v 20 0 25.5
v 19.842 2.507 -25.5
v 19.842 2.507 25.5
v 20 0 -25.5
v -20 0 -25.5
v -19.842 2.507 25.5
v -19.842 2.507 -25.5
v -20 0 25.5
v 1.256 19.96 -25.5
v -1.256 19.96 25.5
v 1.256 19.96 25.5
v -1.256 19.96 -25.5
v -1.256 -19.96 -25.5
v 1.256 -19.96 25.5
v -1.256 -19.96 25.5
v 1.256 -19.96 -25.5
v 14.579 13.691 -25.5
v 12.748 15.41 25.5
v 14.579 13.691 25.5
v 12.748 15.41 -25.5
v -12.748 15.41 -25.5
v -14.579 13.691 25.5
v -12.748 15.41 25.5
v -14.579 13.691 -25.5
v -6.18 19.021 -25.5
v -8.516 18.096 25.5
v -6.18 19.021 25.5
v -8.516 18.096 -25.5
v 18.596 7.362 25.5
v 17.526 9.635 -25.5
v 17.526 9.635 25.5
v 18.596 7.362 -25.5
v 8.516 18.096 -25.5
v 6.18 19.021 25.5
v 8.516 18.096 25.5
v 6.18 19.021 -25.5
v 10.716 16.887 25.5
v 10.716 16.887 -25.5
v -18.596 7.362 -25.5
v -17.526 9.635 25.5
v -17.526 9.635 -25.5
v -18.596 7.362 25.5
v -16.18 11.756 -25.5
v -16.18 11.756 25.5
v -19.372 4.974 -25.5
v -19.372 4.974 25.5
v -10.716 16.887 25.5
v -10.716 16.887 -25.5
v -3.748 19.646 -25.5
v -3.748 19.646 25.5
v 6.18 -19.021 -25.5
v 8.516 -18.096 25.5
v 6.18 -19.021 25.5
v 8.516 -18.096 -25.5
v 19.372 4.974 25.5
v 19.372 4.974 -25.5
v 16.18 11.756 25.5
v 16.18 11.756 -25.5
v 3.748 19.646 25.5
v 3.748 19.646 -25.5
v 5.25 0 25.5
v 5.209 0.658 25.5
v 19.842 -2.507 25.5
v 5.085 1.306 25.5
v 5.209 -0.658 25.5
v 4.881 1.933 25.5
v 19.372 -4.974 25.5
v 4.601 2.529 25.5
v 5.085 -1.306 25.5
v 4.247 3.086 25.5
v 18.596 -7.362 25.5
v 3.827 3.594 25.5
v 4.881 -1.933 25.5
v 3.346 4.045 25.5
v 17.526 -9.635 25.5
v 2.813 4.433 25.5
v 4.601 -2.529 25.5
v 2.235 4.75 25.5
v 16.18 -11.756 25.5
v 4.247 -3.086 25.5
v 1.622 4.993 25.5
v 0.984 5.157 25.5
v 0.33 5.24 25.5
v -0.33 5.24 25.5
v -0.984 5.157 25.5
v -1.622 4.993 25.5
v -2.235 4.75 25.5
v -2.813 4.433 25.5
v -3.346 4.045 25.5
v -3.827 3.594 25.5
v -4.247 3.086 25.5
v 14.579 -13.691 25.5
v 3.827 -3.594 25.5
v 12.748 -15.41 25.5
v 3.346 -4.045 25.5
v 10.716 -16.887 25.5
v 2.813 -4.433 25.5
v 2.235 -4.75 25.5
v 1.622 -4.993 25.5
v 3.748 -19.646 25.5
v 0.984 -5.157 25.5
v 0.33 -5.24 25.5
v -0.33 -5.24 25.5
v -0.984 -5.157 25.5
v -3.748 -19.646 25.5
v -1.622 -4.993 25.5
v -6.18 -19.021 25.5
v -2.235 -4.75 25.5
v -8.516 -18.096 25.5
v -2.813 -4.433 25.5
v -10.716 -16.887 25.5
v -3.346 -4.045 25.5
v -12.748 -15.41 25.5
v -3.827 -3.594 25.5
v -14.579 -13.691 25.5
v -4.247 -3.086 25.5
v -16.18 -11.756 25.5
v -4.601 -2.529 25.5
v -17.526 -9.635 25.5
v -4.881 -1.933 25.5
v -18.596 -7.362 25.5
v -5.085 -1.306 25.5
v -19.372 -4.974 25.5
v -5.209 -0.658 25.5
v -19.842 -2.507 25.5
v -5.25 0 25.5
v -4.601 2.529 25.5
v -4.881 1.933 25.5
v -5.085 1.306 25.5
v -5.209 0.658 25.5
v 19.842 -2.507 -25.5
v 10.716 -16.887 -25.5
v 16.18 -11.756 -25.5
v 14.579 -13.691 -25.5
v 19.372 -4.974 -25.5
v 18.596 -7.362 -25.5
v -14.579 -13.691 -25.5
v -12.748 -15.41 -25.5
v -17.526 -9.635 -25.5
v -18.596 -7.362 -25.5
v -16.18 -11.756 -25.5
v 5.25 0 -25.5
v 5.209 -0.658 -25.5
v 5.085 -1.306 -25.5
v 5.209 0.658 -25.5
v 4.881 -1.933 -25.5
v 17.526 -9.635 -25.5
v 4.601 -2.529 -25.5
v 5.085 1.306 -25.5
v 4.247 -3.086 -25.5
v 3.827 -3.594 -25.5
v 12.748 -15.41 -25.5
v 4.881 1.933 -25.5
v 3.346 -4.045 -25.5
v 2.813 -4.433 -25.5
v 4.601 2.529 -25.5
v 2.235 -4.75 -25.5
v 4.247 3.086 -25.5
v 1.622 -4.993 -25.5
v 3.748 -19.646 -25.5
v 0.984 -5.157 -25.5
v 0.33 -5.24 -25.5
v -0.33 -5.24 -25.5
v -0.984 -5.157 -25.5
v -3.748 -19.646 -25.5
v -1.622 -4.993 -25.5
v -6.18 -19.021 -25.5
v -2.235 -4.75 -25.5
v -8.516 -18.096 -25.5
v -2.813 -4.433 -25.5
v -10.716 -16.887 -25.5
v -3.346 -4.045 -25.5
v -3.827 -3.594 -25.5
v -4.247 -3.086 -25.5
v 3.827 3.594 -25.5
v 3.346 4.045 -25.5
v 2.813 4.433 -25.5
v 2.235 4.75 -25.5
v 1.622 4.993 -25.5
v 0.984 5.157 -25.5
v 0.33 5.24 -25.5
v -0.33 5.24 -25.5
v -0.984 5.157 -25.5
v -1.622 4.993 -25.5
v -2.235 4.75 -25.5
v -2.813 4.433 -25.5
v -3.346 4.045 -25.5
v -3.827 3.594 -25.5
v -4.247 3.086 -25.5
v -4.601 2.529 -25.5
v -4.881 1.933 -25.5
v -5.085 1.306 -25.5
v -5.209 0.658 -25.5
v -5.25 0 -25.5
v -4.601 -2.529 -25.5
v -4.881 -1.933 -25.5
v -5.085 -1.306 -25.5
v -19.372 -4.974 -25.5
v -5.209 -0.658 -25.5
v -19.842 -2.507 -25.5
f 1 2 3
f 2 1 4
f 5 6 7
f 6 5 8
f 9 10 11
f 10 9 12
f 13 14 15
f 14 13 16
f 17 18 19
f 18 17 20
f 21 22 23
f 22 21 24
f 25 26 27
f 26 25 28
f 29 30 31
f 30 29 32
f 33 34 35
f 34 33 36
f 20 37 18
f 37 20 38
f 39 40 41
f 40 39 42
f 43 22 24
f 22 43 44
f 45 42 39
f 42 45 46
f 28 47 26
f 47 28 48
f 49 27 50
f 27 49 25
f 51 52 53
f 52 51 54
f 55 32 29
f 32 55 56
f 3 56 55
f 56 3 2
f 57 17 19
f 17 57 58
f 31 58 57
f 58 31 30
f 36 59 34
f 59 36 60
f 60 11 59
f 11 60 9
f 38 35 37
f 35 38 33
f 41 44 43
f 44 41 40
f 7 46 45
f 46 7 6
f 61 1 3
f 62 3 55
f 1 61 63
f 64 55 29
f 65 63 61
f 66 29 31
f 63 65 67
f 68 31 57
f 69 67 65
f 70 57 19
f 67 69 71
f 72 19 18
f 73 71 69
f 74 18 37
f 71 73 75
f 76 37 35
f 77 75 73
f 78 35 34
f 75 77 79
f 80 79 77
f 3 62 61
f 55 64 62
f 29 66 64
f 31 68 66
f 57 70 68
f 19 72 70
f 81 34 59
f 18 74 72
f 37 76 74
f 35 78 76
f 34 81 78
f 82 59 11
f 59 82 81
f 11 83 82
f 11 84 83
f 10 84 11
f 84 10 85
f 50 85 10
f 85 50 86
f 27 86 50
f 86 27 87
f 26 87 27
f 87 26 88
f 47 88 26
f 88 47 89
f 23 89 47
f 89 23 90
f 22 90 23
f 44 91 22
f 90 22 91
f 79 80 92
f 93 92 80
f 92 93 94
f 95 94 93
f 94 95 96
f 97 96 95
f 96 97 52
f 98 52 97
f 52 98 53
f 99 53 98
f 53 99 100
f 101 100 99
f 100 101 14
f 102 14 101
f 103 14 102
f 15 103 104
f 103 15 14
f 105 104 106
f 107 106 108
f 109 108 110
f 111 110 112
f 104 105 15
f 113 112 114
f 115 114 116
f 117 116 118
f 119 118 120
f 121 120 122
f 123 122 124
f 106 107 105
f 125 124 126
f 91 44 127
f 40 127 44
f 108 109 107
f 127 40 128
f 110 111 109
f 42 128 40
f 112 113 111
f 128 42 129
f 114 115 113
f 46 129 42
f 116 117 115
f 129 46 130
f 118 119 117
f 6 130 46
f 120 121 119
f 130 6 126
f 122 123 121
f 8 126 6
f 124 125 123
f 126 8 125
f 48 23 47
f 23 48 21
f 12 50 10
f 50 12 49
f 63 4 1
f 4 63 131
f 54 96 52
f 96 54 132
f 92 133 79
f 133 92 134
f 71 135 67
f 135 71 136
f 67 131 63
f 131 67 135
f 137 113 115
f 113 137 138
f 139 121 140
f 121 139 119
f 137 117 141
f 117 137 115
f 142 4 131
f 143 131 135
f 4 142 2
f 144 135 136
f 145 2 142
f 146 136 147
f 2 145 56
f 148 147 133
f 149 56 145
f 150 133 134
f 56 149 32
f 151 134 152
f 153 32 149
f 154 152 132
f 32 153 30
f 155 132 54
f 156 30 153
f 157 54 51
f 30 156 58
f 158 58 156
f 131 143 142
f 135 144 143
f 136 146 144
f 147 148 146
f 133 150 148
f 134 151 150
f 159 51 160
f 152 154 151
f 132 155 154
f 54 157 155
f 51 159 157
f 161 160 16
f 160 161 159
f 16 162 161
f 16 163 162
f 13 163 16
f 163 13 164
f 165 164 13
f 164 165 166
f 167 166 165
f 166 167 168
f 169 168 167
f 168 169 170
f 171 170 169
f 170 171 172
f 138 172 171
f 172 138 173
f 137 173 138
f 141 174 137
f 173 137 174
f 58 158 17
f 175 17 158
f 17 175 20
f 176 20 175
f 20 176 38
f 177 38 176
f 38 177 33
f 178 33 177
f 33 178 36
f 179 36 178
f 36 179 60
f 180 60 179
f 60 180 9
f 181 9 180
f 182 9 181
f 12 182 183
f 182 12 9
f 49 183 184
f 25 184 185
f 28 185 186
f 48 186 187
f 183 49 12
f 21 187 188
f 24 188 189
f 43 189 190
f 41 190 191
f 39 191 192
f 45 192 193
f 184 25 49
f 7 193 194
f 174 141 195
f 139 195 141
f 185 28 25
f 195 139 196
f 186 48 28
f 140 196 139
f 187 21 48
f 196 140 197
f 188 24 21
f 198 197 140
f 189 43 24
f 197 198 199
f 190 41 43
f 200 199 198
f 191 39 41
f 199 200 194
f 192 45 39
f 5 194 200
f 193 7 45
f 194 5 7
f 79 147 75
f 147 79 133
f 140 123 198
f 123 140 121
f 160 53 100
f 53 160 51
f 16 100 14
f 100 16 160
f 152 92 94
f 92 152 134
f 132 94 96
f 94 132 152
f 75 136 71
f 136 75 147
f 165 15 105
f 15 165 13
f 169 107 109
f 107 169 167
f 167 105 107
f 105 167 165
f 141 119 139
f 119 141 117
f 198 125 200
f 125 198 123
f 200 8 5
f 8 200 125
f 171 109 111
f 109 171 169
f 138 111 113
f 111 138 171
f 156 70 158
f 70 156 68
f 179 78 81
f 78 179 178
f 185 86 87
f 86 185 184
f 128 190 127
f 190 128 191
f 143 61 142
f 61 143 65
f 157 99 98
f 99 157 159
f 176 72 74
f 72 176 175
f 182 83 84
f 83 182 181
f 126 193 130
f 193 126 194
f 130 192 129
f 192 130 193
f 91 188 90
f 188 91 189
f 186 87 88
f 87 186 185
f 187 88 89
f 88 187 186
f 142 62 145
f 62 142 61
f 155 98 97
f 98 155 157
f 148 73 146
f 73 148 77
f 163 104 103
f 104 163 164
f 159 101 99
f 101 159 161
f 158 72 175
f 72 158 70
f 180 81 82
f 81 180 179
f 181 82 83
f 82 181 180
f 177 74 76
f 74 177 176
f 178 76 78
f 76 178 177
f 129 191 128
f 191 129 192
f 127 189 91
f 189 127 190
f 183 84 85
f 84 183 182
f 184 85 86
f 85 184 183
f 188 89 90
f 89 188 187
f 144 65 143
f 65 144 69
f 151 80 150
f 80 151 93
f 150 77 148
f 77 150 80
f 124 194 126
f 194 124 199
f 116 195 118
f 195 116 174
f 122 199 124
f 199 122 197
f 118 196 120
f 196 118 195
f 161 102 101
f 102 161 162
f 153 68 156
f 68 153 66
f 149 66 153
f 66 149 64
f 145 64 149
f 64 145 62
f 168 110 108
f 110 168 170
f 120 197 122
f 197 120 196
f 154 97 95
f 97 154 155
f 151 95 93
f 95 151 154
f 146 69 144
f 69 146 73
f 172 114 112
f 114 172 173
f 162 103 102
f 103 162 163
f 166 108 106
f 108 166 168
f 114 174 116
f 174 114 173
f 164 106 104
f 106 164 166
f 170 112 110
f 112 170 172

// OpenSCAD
$fn = 50;


difference() {
	union() {
		translate(v = [0, 0, -25.5000000000]) {
			cylinder(h = 51, r = 20.0000000000);
		}
	}
	union() {
		translate(v = [0, 0, -100.0000000000]) {
			cylinder(h = 200, r = 5.2500000000);
		}
	}
}
